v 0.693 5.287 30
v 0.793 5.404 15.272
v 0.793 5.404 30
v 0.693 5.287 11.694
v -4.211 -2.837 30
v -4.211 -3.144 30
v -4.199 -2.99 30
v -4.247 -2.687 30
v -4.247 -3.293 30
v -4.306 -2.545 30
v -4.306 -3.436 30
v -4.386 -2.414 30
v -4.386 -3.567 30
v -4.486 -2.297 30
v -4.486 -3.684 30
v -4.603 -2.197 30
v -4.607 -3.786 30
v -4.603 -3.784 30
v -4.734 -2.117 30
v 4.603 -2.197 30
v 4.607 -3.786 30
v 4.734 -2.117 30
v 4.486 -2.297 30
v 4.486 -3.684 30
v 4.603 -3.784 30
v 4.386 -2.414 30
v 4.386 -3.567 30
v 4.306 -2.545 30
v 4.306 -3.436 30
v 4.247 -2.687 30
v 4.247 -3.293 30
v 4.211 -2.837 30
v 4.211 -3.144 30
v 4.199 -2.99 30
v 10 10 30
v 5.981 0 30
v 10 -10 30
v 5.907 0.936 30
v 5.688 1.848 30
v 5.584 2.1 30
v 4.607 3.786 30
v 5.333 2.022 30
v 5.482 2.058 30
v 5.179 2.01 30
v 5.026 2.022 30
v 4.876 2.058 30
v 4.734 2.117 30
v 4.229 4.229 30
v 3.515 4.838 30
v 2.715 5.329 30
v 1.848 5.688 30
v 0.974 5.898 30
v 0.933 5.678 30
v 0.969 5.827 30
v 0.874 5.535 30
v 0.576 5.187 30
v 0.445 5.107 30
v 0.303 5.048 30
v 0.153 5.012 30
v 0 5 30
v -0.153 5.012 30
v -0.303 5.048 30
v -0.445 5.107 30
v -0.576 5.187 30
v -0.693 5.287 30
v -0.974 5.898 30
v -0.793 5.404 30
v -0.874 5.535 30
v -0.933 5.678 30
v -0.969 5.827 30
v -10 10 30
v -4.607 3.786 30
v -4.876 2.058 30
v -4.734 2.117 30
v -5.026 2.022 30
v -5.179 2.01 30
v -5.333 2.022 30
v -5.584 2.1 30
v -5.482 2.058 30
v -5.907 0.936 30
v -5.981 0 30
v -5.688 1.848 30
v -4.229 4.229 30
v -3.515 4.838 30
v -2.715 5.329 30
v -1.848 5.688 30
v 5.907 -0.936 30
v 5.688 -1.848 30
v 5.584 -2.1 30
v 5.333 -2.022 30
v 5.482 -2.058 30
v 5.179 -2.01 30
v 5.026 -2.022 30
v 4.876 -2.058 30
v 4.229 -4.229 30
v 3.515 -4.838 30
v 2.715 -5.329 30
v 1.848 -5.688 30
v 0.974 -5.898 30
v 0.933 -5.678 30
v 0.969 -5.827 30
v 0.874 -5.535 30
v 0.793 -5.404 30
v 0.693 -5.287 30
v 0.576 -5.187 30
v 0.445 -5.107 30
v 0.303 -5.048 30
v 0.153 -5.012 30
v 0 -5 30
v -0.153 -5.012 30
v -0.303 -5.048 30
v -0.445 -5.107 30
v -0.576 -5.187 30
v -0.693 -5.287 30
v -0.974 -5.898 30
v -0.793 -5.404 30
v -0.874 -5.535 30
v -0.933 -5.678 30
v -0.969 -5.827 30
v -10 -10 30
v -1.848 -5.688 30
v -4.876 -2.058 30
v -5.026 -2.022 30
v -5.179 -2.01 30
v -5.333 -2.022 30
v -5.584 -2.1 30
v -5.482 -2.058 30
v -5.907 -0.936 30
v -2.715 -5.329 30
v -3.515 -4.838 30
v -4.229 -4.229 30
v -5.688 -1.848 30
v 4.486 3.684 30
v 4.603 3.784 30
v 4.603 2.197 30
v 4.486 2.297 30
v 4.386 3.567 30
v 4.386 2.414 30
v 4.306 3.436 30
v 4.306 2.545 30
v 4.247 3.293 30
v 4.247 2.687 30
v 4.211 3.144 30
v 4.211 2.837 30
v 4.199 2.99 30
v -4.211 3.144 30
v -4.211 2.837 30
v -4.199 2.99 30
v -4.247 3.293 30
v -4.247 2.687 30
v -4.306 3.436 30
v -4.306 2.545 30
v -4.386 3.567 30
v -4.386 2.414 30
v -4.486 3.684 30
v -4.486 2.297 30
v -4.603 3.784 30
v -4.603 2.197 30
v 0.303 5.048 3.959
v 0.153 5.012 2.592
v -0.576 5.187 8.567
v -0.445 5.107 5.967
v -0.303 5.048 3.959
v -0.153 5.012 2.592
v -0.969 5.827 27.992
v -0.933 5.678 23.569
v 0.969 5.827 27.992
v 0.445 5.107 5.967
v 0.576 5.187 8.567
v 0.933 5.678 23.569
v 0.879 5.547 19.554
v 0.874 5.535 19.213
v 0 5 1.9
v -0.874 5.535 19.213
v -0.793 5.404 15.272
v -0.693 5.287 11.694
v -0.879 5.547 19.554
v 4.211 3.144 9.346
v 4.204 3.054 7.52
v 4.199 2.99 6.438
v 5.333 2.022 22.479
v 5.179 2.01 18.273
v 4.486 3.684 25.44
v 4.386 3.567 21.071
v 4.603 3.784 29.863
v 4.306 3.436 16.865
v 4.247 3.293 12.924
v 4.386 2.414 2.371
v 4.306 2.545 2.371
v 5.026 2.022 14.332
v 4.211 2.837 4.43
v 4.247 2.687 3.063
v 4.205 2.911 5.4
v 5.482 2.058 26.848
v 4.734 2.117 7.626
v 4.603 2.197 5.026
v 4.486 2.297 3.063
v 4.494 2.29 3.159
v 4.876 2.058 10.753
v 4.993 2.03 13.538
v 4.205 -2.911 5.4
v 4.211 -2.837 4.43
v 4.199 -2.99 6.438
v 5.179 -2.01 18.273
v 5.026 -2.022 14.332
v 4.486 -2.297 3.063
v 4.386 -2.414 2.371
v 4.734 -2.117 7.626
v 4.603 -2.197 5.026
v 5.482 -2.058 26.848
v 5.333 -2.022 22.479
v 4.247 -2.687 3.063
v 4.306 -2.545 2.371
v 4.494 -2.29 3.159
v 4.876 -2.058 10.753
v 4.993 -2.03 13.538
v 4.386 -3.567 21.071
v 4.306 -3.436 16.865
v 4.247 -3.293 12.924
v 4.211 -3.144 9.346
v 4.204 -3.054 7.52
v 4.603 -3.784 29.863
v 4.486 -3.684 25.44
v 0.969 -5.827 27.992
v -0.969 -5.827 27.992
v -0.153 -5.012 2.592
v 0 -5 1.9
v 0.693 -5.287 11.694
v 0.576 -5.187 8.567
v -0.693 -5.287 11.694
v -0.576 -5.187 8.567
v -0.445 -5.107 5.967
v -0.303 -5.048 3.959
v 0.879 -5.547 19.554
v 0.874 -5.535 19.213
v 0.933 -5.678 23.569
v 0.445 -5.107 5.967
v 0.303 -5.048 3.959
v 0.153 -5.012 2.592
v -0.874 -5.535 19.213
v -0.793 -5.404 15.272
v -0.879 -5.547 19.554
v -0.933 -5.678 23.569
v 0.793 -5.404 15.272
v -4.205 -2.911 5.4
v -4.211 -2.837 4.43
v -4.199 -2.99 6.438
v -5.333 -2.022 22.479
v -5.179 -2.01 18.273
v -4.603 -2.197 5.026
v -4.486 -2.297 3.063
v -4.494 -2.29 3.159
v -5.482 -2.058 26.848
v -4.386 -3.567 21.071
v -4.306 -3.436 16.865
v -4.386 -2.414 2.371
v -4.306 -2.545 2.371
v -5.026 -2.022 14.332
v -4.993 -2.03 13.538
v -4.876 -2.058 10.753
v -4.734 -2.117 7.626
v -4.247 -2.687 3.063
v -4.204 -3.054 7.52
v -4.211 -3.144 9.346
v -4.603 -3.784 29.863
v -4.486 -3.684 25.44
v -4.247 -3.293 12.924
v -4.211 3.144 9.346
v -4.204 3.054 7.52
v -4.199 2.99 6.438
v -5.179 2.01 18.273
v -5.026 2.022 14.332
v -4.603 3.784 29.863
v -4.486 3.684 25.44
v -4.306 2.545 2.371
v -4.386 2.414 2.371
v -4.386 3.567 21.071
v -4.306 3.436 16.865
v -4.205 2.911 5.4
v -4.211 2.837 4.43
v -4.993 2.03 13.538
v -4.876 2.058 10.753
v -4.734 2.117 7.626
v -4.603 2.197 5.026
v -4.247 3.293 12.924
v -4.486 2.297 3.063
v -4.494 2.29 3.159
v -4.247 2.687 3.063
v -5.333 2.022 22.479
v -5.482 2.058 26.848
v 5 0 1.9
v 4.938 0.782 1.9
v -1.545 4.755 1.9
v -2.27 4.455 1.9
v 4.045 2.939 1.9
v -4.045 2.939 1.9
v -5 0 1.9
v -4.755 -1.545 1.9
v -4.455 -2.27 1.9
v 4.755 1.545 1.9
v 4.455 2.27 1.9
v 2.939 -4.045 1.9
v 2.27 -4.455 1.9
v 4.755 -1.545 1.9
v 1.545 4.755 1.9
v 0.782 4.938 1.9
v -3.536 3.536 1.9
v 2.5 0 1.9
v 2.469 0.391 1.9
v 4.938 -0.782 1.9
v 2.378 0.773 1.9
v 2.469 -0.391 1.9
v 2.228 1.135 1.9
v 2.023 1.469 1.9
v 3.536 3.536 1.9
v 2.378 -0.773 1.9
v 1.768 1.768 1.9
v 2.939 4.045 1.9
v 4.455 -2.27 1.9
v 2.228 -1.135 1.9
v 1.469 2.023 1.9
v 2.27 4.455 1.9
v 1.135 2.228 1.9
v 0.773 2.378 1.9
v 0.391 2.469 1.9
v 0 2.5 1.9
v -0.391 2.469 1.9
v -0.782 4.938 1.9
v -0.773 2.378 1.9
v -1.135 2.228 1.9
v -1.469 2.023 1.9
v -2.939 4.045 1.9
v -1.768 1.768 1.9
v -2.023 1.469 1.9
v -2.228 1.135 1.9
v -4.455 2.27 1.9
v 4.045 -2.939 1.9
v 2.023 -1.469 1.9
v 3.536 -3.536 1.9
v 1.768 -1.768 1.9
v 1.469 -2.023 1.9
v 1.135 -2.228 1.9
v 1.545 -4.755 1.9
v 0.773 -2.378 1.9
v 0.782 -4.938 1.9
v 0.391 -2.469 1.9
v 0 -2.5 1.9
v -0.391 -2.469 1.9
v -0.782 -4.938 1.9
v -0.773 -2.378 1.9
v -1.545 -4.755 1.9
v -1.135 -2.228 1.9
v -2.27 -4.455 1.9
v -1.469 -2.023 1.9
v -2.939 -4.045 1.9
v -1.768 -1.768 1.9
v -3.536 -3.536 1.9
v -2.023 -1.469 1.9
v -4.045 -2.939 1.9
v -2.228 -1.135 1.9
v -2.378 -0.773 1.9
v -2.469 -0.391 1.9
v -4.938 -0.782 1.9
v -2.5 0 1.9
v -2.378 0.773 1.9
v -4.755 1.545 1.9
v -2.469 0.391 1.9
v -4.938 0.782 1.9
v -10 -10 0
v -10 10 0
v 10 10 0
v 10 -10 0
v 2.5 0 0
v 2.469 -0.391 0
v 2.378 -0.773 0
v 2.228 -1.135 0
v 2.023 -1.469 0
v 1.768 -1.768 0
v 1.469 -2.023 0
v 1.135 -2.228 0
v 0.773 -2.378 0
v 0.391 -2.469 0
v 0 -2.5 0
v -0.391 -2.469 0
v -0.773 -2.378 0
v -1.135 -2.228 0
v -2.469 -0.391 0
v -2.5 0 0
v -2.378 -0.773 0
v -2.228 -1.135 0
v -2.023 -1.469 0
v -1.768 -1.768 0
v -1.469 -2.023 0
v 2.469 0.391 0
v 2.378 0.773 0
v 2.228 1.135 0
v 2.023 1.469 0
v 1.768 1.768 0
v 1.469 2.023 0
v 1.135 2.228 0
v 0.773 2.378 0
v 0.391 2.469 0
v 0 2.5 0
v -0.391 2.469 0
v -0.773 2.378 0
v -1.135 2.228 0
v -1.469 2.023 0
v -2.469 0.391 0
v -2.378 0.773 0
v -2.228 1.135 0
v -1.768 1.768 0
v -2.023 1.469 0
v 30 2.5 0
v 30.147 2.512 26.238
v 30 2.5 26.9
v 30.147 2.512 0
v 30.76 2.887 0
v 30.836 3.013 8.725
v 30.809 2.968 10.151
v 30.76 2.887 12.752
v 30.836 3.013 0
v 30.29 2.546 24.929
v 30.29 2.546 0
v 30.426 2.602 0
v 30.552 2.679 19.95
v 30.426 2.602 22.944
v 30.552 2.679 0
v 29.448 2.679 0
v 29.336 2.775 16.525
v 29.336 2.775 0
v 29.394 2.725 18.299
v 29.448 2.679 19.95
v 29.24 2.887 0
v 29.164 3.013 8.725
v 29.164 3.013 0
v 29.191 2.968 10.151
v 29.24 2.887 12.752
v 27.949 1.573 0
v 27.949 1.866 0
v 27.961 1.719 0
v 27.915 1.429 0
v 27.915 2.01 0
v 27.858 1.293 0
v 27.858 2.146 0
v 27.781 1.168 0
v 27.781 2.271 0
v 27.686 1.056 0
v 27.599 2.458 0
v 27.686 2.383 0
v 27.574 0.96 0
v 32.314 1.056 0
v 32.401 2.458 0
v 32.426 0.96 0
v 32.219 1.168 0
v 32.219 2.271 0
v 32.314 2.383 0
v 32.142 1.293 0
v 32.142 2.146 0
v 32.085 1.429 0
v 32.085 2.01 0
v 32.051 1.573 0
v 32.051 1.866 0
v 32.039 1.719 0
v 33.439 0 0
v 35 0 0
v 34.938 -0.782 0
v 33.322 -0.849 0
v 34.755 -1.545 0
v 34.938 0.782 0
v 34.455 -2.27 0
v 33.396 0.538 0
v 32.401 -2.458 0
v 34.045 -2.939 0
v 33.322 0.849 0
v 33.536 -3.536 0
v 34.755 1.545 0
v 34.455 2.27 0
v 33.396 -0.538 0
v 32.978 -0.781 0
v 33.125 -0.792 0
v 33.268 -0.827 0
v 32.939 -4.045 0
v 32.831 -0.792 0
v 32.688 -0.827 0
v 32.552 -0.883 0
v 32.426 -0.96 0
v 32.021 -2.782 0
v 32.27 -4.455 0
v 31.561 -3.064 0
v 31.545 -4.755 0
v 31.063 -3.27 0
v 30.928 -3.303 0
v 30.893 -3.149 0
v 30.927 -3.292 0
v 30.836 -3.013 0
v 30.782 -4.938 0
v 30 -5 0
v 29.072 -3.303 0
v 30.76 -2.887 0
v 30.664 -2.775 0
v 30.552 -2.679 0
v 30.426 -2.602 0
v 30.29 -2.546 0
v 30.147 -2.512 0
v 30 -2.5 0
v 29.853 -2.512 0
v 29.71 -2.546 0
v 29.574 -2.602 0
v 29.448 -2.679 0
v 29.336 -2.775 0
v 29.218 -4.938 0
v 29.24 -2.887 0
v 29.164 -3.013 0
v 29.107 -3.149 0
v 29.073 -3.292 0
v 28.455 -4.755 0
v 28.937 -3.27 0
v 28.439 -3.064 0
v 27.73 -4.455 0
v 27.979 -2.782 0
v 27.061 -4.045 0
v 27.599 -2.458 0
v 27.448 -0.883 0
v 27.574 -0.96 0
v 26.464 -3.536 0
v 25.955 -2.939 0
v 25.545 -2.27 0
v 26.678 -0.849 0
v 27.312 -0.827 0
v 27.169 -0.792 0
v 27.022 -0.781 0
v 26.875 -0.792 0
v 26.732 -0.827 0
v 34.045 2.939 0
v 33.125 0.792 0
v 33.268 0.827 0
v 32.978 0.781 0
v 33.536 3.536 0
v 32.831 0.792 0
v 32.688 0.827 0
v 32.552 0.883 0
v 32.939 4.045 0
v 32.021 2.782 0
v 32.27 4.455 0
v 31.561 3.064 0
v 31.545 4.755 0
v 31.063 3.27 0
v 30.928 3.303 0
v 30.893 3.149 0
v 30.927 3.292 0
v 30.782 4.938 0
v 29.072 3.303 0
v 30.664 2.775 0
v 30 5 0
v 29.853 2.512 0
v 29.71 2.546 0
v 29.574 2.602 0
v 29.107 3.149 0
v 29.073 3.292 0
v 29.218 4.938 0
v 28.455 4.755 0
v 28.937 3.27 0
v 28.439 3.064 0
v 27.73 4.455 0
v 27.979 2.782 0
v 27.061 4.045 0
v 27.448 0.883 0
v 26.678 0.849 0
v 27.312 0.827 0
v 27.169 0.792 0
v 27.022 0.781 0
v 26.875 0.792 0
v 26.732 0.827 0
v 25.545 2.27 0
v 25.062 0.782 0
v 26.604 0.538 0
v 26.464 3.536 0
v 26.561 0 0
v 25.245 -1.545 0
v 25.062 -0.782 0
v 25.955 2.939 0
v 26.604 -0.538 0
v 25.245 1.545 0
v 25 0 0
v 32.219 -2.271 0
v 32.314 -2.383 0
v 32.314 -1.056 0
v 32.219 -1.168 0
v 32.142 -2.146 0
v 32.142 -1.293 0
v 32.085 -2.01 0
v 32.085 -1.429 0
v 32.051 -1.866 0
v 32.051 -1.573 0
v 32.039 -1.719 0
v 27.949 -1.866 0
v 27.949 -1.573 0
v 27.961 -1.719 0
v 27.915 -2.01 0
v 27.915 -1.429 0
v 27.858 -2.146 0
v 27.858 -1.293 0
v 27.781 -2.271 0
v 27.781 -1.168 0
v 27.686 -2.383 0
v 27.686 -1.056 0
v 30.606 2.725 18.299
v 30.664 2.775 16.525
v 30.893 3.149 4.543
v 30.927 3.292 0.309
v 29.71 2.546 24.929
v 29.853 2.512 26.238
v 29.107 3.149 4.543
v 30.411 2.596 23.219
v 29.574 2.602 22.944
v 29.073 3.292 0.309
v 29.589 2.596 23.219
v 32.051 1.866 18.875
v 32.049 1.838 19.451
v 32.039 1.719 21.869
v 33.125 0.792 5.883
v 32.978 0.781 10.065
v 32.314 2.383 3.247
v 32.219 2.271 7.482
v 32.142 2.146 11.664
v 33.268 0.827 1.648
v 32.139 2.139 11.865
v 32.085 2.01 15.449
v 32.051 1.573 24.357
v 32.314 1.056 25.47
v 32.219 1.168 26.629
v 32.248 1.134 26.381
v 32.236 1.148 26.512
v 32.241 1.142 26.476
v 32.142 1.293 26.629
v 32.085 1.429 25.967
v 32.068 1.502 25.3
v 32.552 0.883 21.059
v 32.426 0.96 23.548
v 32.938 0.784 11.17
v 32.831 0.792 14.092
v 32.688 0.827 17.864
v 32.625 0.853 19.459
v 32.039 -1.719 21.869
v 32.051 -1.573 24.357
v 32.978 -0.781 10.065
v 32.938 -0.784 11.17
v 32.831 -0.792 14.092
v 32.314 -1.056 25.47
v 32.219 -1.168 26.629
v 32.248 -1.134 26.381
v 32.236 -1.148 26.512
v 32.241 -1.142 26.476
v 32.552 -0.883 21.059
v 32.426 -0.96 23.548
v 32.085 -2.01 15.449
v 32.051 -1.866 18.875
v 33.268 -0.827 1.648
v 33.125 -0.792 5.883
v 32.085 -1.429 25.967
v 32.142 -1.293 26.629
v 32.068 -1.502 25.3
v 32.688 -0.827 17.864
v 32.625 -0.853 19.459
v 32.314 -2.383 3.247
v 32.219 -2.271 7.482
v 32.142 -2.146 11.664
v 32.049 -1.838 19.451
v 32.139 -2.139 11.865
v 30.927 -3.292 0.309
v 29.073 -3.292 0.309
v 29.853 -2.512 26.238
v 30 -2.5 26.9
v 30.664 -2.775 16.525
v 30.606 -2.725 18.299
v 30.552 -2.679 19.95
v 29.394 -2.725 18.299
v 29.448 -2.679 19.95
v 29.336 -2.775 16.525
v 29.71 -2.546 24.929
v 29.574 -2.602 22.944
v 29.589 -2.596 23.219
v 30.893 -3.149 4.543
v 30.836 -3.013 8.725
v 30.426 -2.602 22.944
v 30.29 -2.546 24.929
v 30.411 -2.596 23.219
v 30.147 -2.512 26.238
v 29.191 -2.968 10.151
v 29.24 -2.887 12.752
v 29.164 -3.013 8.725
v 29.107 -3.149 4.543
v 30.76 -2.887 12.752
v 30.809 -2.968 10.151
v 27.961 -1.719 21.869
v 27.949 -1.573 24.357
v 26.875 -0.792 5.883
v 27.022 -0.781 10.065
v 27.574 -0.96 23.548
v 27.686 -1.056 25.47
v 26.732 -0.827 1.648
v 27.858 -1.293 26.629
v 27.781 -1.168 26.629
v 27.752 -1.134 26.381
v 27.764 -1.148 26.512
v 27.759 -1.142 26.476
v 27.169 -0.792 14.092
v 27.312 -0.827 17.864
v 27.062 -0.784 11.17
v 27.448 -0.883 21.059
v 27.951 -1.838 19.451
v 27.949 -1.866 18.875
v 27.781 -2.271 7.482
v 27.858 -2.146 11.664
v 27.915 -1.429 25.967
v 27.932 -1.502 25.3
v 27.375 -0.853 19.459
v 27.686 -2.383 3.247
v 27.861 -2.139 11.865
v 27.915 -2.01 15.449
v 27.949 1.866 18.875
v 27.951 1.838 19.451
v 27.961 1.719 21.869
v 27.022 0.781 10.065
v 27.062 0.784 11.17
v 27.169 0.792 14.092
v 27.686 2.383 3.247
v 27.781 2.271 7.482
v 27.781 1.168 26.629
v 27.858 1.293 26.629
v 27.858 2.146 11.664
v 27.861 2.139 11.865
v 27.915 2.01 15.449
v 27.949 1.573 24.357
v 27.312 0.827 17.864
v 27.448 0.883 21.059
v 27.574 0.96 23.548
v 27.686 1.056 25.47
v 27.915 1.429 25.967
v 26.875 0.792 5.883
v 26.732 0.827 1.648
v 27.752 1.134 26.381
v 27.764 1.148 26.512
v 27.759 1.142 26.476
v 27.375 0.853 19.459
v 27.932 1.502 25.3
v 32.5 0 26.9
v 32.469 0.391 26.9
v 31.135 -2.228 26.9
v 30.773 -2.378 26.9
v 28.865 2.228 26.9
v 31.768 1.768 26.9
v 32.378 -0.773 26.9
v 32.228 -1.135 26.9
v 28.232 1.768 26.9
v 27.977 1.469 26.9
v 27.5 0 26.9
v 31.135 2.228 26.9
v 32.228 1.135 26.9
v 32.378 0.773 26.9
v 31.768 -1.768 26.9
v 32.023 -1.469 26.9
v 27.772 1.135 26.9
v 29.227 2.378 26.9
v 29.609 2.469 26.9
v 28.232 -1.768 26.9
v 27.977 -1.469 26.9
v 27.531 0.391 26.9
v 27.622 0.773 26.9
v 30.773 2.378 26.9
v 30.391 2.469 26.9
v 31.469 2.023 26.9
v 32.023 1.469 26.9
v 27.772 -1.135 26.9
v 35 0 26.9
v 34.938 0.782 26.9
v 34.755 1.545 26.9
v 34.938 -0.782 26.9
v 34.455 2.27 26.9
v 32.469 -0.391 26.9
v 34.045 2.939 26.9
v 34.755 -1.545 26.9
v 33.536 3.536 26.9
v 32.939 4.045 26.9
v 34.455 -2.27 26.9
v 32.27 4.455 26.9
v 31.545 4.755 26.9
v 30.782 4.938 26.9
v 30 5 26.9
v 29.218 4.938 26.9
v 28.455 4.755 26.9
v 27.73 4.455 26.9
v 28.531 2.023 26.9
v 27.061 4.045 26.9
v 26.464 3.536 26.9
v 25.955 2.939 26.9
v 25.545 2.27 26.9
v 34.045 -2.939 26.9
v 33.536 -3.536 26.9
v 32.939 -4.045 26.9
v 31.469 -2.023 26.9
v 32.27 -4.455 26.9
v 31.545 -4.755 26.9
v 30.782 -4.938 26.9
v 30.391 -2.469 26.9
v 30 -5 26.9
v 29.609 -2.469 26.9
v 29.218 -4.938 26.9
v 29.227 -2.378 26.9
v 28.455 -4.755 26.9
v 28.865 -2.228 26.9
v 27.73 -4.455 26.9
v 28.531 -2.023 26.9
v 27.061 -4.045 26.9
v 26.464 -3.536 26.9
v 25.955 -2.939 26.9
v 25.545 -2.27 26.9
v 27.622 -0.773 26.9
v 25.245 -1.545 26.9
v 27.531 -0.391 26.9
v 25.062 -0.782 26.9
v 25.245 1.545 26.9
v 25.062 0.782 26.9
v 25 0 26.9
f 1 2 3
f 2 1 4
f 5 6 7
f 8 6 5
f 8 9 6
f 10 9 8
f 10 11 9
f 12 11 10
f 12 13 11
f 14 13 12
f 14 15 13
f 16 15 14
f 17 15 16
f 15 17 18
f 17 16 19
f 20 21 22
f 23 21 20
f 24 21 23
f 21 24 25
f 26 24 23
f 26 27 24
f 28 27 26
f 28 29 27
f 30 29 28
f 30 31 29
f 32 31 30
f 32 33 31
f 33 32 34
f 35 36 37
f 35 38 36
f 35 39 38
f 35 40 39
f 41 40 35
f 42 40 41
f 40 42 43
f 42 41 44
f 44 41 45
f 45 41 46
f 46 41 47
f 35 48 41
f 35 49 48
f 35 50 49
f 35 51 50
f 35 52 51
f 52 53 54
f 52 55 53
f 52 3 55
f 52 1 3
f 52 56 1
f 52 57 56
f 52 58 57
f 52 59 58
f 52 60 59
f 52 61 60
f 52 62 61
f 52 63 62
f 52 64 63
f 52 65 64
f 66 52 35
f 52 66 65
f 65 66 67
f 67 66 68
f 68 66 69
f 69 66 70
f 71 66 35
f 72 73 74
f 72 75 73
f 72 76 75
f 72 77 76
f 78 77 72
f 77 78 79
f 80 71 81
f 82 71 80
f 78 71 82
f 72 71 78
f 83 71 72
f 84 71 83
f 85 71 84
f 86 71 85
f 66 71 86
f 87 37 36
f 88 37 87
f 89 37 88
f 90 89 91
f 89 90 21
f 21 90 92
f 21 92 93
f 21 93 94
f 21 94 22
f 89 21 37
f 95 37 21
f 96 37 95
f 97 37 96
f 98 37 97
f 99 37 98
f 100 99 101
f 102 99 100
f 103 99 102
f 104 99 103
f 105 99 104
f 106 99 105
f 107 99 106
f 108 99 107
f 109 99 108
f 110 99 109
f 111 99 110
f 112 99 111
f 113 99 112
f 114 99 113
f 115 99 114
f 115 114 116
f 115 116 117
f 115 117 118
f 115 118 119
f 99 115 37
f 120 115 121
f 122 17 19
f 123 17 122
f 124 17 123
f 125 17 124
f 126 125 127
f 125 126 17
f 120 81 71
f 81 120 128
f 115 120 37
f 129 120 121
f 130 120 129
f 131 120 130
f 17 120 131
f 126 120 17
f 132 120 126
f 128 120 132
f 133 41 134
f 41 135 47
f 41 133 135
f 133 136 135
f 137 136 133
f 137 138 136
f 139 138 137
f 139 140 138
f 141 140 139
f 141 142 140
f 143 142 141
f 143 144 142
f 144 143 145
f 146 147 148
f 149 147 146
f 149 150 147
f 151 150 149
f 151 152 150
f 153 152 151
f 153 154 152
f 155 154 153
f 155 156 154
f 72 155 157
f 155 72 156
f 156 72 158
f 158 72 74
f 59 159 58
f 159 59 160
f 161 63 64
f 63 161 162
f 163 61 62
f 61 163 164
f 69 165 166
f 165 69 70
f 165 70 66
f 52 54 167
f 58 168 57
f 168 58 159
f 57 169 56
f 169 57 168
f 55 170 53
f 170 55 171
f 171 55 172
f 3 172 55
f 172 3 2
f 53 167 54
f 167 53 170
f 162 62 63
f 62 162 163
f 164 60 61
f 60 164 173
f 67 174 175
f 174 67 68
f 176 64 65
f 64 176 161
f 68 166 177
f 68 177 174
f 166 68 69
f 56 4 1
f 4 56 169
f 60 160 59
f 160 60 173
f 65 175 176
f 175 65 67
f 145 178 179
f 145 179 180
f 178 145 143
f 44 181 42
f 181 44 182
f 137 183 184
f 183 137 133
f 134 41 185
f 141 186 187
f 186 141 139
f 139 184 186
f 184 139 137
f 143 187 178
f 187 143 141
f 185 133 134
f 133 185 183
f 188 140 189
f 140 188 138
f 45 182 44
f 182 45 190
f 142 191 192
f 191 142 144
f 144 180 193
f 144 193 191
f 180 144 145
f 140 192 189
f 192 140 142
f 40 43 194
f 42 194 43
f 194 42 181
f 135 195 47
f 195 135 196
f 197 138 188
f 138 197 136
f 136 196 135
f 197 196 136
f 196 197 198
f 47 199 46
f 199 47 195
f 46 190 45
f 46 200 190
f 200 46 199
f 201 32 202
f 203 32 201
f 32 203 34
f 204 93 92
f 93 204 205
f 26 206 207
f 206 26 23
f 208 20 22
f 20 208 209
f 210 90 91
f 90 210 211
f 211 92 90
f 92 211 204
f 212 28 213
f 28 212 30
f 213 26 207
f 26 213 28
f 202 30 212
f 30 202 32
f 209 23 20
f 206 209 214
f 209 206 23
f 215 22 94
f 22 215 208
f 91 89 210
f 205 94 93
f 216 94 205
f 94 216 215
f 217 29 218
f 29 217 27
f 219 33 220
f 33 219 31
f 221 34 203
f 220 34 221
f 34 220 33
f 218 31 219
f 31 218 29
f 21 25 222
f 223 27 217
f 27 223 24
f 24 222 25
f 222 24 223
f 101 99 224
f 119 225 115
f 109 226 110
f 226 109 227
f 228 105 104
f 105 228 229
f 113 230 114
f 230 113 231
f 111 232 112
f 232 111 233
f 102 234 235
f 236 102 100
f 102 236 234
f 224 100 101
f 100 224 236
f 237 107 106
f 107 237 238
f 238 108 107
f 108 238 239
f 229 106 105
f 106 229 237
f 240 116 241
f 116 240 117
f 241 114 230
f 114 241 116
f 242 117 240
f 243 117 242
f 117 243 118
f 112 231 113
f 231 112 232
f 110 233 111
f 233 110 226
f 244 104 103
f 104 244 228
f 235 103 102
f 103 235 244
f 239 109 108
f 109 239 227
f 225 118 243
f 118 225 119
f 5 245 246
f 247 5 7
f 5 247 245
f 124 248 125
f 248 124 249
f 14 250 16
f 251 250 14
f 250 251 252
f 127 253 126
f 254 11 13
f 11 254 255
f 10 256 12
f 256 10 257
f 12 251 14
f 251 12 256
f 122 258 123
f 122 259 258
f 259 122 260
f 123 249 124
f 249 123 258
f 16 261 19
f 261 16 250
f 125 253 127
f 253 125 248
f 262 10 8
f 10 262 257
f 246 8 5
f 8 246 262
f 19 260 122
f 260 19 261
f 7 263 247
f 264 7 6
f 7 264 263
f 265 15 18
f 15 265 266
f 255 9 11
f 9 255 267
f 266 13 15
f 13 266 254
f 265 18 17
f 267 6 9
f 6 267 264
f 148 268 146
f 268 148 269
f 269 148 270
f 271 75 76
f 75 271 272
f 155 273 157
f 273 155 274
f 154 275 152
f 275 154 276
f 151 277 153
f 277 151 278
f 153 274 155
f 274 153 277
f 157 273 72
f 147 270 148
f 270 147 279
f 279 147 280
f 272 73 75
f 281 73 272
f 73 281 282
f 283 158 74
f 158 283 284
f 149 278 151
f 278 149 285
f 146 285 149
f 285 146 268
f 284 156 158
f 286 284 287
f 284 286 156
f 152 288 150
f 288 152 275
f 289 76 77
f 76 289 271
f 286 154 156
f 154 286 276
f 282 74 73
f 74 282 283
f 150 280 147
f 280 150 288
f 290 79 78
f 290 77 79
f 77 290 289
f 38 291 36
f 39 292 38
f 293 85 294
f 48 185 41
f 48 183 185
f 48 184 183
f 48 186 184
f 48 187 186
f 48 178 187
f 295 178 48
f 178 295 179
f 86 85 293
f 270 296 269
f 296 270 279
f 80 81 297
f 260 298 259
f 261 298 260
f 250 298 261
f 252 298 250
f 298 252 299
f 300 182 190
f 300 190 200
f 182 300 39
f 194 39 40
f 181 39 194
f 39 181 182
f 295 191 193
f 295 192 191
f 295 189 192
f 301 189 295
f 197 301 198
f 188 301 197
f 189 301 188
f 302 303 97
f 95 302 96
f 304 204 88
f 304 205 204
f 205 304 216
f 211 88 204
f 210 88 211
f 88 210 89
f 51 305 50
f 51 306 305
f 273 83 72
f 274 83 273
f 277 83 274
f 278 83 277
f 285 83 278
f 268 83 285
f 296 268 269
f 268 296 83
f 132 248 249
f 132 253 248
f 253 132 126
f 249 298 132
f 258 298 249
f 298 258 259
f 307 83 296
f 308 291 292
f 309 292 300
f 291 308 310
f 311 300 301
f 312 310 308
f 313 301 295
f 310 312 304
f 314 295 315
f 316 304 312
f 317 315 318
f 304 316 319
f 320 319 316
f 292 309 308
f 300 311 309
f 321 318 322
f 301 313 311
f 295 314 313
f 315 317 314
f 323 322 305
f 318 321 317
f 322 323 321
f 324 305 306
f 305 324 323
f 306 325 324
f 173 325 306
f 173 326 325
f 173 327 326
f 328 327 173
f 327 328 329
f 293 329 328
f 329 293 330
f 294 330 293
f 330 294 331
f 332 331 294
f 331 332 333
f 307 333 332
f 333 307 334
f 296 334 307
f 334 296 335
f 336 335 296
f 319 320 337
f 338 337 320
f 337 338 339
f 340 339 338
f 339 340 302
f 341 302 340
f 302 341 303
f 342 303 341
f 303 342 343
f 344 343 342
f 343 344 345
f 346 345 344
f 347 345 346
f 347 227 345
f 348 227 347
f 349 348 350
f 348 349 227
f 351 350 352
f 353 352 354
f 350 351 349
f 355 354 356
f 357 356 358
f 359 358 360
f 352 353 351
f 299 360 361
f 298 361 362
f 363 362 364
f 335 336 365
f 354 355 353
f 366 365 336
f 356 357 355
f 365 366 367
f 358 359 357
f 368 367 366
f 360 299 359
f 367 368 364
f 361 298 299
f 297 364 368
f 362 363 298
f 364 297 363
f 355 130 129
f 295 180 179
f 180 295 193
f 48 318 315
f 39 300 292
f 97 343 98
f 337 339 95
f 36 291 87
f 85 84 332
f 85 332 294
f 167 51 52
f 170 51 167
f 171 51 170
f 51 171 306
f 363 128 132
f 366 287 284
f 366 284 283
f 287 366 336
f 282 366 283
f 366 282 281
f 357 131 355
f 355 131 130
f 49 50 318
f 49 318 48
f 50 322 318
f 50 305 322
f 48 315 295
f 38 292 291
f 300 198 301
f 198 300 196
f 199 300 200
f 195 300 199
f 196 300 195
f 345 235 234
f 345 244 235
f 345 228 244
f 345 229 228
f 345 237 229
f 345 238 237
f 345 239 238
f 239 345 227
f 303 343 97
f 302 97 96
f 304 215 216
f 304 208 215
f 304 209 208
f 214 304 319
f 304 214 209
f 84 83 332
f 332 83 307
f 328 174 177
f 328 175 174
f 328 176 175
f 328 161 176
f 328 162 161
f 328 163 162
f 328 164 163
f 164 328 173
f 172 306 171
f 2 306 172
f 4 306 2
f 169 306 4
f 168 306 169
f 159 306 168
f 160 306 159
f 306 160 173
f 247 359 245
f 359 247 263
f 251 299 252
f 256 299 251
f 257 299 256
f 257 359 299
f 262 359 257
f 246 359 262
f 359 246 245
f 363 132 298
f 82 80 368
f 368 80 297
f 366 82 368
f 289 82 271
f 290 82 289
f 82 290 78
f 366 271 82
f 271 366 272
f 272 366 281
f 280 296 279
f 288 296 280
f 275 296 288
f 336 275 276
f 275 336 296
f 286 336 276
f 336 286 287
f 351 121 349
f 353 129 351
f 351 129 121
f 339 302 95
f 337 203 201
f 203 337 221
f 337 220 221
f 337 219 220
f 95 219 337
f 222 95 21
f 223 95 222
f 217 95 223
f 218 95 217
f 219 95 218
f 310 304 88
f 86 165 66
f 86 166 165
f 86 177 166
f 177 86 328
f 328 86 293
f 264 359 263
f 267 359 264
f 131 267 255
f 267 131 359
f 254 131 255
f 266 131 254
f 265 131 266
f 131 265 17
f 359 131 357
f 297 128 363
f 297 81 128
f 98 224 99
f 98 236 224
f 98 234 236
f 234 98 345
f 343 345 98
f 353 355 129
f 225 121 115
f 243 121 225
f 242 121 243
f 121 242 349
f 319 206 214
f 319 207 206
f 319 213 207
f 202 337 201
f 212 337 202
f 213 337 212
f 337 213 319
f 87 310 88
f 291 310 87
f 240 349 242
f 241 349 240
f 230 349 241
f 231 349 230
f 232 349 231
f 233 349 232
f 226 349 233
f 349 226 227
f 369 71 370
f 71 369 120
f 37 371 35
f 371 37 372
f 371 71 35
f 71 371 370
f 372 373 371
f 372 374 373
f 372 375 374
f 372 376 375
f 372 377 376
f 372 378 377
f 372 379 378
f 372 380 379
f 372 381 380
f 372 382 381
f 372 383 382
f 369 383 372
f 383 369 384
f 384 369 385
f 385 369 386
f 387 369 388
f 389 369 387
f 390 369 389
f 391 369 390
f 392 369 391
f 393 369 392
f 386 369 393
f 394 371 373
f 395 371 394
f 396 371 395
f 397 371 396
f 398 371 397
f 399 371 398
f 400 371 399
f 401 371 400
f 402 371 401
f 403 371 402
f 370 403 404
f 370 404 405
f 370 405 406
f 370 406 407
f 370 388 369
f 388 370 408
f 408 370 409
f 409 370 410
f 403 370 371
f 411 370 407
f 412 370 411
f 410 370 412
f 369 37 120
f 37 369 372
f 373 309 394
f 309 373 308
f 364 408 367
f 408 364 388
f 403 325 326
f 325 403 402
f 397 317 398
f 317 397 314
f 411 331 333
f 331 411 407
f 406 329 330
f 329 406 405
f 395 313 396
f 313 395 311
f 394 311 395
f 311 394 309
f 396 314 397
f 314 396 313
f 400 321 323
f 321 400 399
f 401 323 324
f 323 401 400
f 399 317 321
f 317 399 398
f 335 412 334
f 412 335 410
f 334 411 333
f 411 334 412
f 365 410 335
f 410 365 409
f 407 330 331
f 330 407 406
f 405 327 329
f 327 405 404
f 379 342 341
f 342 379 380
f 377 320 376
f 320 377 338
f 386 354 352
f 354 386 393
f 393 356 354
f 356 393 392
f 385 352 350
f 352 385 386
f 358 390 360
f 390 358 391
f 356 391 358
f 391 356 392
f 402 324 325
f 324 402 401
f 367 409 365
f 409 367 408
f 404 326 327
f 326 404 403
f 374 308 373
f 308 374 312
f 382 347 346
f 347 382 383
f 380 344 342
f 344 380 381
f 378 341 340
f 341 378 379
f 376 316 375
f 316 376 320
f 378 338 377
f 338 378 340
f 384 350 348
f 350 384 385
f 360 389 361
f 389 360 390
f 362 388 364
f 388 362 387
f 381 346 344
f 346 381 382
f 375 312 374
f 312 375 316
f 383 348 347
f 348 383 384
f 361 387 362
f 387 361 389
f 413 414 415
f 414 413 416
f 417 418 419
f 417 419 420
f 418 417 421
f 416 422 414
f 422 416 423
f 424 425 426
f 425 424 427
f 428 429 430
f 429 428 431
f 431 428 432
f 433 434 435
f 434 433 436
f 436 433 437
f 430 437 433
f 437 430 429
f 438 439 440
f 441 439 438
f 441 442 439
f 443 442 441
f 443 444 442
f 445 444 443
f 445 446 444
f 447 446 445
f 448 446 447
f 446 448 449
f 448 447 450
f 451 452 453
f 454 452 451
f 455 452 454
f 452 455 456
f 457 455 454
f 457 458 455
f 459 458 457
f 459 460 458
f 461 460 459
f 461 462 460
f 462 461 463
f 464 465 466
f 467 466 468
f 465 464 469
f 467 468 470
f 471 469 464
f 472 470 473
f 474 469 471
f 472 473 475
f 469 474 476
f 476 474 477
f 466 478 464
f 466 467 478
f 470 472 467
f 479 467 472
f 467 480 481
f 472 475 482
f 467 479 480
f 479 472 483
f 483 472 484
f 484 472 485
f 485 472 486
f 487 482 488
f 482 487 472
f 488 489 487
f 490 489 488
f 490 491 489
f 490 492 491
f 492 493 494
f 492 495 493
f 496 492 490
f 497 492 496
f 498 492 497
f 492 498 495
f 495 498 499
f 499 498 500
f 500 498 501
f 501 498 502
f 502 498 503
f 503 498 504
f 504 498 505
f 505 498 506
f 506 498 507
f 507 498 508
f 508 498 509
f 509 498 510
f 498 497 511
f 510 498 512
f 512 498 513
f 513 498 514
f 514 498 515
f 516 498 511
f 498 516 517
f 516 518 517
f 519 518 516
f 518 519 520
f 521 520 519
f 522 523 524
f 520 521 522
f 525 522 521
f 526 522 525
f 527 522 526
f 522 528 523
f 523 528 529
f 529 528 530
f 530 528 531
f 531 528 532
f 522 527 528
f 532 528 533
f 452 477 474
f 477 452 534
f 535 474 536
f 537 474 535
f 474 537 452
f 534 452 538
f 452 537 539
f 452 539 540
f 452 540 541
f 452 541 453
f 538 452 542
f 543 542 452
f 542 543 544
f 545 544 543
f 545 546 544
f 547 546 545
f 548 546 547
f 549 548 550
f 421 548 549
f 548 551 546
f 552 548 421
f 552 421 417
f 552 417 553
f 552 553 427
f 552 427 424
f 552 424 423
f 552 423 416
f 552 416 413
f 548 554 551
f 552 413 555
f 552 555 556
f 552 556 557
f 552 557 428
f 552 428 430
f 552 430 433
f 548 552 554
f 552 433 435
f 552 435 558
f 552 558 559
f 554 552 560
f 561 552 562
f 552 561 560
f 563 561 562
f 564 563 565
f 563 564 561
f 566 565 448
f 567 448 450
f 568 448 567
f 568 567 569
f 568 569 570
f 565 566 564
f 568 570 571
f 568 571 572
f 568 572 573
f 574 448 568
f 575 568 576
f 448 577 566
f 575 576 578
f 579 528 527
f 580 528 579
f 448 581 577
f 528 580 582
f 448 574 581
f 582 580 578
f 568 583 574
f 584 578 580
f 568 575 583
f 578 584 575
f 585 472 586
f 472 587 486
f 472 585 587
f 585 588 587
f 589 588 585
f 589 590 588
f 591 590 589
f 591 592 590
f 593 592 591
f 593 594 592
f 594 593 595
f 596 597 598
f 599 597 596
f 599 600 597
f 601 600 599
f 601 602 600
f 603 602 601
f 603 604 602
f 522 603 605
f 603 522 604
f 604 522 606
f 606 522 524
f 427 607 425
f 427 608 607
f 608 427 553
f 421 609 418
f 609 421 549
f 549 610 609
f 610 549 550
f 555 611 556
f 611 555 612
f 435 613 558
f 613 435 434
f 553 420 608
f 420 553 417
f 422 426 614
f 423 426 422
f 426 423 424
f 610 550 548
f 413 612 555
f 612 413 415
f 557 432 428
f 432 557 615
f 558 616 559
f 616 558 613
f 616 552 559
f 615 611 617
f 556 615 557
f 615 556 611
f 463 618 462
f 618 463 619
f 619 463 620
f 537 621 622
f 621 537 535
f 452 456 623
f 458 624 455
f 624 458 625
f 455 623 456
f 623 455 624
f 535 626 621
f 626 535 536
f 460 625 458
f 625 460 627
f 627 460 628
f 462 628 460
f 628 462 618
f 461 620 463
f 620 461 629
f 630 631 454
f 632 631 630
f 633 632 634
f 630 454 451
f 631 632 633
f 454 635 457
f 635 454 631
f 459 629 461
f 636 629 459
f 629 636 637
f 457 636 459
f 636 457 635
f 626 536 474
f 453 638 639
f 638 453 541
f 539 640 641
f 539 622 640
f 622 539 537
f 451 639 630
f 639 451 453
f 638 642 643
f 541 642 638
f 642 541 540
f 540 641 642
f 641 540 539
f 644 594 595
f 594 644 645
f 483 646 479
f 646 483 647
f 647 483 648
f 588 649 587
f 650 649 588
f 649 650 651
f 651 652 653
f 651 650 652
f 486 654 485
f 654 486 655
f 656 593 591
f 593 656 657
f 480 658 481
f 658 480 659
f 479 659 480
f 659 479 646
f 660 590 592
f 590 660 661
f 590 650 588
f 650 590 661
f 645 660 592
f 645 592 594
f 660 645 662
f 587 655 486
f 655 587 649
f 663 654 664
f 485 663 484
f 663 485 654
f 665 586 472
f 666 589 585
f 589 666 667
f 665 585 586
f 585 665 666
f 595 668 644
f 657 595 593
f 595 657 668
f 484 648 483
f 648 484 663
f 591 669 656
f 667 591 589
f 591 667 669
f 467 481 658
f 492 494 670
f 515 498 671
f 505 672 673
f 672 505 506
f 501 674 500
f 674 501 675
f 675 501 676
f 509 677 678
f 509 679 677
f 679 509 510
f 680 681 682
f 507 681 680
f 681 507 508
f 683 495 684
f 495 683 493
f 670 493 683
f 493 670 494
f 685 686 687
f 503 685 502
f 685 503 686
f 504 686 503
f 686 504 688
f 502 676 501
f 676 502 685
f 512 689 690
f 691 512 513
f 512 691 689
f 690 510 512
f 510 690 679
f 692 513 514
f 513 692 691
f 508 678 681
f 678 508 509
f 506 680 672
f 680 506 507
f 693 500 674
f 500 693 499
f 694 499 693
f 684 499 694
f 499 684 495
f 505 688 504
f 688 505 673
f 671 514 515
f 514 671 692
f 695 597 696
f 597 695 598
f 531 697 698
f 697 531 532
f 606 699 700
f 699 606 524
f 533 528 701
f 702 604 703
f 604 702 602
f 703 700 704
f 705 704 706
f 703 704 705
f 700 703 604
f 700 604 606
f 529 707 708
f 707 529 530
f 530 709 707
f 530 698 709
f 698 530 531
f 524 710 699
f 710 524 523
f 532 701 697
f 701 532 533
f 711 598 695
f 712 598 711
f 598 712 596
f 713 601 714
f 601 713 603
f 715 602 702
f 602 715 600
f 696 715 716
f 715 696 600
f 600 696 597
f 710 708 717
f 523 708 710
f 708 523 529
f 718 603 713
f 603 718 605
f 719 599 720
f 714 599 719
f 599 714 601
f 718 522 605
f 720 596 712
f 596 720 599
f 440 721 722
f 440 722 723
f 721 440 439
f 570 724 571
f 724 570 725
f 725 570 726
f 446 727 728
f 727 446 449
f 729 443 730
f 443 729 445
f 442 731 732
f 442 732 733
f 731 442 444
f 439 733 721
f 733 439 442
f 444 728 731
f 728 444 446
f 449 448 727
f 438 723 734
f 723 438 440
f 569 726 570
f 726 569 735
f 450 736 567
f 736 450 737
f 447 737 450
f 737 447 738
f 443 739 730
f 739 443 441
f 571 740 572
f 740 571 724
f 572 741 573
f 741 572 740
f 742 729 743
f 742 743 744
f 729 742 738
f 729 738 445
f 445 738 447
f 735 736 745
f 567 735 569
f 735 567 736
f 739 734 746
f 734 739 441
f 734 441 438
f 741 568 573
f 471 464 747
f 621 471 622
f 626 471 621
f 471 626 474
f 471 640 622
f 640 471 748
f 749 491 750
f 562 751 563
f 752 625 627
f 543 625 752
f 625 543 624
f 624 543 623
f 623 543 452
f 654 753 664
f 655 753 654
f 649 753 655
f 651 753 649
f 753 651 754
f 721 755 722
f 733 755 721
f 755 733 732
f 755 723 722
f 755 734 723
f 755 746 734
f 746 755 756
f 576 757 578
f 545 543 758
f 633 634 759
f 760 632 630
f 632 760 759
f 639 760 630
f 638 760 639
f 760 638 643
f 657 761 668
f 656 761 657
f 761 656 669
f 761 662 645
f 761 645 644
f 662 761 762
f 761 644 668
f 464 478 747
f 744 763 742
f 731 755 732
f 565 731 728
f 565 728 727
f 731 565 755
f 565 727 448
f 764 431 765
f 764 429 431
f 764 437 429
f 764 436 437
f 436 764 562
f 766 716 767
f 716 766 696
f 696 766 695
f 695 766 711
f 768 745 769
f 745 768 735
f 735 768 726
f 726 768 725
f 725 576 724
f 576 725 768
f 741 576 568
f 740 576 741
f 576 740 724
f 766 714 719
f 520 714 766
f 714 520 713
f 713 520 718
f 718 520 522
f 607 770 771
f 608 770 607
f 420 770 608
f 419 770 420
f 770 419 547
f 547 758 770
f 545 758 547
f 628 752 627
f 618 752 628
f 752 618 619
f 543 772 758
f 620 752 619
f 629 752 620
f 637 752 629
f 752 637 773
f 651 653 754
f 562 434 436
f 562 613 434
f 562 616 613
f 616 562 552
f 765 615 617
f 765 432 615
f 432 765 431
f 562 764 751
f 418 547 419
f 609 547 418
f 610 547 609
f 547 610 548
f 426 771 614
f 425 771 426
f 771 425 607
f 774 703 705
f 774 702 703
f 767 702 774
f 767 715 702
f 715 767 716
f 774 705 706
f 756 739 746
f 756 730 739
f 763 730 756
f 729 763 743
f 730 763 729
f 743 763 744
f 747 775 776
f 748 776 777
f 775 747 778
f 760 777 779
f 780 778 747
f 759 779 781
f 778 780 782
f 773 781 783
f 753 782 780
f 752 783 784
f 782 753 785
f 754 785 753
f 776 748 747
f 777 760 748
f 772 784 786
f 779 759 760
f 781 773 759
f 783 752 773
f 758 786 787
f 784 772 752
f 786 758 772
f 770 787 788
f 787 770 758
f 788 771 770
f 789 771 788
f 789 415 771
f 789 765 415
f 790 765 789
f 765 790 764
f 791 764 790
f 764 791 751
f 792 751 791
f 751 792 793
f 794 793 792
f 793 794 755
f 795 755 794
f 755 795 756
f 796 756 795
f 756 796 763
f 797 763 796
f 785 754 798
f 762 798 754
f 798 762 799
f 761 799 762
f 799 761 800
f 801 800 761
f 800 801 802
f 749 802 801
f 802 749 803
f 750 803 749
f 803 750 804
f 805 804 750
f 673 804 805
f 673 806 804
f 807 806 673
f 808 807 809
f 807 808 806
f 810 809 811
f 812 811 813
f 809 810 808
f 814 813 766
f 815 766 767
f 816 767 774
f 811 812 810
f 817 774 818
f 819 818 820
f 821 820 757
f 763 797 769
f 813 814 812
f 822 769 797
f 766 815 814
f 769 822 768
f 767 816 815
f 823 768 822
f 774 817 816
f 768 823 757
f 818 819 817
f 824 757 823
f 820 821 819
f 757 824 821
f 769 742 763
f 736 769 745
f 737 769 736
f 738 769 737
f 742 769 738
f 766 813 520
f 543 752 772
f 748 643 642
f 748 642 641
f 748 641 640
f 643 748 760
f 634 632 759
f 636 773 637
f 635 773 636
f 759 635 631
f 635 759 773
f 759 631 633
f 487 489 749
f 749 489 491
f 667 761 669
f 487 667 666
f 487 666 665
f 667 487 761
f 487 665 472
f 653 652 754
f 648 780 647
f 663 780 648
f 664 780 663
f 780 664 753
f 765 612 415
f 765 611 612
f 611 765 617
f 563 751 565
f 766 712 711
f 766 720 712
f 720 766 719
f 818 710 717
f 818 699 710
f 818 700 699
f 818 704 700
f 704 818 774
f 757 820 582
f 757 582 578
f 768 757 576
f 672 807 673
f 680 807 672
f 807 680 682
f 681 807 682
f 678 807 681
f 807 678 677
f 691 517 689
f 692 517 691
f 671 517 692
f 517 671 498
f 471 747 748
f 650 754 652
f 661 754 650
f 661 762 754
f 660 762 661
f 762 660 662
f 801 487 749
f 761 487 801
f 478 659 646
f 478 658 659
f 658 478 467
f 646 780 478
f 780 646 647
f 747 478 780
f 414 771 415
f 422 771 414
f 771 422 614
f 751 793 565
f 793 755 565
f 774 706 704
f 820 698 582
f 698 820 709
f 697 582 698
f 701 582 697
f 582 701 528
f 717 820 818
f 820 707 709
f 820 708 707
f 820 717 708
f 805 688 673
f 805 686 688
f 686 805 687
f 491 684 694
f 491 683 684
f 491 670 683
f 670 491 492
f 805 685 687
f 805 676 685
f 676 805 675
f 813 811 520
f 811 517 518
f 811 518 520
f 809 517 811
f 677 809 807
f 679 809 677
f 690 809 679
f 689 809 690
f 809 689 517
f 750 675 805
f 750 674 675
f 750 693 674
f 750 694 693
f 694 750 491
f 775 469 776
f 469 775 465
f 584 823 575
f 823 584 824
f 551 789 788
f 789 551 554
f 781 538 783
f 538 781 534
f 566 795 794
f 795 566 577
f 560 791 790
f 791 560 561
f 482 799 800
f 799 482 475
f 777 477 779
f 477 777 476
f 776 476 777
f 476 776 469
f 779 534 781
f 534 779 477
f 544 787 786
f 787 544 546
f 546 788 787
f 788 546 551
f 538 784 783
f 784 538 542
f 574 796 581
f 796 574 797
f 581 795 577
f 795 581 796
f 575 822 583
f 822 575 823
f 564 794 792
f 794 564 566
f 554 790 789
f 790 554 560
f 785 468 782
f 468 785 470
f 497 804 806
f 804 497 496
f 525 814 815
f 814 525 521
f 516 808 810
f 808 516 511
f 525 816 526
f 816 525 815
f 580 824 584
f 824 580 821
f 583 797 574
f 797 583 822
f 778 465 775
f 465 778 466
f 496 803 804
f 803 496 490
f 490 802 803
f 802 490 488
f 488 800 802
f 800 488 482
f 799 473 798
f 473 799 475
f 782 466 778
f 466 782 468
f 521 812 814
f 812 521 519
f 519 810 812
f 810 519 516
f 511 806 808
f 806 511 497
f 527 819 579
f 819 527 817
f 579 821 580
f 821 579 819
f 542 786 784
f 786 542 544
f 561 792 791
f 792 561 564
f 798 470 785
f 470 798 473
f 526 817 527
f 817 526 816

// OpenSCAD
//
// 3D-printed case for flicker meter.
//
// Use OpenSCAD to convert this to STL and then whatever
// slicing tool your 3D printer needs.
//

// OpenSCAD makes arcs by assembling straight segments of
// length >=2, covering <= 12 degrees, but that gets chunky for
// smaller parts, and opposite sides might not be parallel.
// Render circles with this many segments.
$fn = 40;
// OpenSCAD approximates circles by fitting polygons inside them.
// To get a polygon *outside* the circle, scale up by this amount.
outer_circle_ratio = 1 / cos(180/$fn);

// Leave this much room on each flat surface for assembly.
ext = 0.1;

// 
// Holder for the phototransistor.
// 
// For now this is a simple box but later it will be part of the
// case.  The PT fits into a cylindrical sleeve, and that sleeve
// fits into a hole in the top of the box, with the filter below it.

// Size of the main body of the PT (excluding the lip).
pt_radius = 2.5;

// Thickness of the IR/UV filter.
filter_height = 1;
// Radius of the IR/UV filter.
filter_radius = 5;

// Minimum wall thickness in the holder.
holder_wall = 2;

// Width of the finished holder.
holder_width = 20;
// Height of the finished holder.
holder_height = 30;

// A hole to press-fit a cylinder into.
module hole(height, radius) {
    // If we make a cylindrical hole then we'll need to
    // mess around with tolerances to match the printer.
    // Instead make a slightly tapered hole with 'crush ribs'
    // that will squash out to accomodate the other part.
    // (TBH not sure this matters at the size I'm using.)
    clearance = height * sin(2);
    smaller_radius = radius;
    larger_radius = smaller_radius + clearance;
    ribs = 6;
    difference() {
        // The tapered hole itself.
        cylinder(h=height, r1=larger_radius, r2=radius);
        // Ribs come in to the nominal radius.
        for (n = [0:ribs]) {
            translate([(larger_radius) * sin(360 * n / ribs),
                       (larger_radius) * cos(360 * n / ribs), 0])
                cylinder(h=height, r=clearance);
        }
    }
}

// Inner sleeve that holds the PT.
module pt_sleeve() {
    height = (holder_height
              - (holder_wall + filter_height)
              - ext);
    difference() {
        cylinder(h=height, r=filter_radius);
        hole(height, pt_radius);
    }
}

// Outer body of the holder, that the sleeve fits into.
module pt_holder()
{
    hole_radius = filter_radius;
    hole_height = holder_height - holder_wall + ext;

    difference() {
        // Outer shell, a box.
        translate([-holder_width / 2, -holder_width / 2]) 
            cube([holder_width, holder_width, holder_height]);
        // Hole right through for light to pass.
        cylinder(h=holder_height, r=pt_radius);
        // Hole at the top for the sleeve to fit into.
        translate([0, 0, holder_height])
            mirror([0, 0, 1])
                hole(hole_height, hole_radius);
    }
}

// Lay all the components out as they will be printed.
module everything() {
    pt_holder();
    translate([30, 0, 0]) pt_sleeve();
}

everything();
